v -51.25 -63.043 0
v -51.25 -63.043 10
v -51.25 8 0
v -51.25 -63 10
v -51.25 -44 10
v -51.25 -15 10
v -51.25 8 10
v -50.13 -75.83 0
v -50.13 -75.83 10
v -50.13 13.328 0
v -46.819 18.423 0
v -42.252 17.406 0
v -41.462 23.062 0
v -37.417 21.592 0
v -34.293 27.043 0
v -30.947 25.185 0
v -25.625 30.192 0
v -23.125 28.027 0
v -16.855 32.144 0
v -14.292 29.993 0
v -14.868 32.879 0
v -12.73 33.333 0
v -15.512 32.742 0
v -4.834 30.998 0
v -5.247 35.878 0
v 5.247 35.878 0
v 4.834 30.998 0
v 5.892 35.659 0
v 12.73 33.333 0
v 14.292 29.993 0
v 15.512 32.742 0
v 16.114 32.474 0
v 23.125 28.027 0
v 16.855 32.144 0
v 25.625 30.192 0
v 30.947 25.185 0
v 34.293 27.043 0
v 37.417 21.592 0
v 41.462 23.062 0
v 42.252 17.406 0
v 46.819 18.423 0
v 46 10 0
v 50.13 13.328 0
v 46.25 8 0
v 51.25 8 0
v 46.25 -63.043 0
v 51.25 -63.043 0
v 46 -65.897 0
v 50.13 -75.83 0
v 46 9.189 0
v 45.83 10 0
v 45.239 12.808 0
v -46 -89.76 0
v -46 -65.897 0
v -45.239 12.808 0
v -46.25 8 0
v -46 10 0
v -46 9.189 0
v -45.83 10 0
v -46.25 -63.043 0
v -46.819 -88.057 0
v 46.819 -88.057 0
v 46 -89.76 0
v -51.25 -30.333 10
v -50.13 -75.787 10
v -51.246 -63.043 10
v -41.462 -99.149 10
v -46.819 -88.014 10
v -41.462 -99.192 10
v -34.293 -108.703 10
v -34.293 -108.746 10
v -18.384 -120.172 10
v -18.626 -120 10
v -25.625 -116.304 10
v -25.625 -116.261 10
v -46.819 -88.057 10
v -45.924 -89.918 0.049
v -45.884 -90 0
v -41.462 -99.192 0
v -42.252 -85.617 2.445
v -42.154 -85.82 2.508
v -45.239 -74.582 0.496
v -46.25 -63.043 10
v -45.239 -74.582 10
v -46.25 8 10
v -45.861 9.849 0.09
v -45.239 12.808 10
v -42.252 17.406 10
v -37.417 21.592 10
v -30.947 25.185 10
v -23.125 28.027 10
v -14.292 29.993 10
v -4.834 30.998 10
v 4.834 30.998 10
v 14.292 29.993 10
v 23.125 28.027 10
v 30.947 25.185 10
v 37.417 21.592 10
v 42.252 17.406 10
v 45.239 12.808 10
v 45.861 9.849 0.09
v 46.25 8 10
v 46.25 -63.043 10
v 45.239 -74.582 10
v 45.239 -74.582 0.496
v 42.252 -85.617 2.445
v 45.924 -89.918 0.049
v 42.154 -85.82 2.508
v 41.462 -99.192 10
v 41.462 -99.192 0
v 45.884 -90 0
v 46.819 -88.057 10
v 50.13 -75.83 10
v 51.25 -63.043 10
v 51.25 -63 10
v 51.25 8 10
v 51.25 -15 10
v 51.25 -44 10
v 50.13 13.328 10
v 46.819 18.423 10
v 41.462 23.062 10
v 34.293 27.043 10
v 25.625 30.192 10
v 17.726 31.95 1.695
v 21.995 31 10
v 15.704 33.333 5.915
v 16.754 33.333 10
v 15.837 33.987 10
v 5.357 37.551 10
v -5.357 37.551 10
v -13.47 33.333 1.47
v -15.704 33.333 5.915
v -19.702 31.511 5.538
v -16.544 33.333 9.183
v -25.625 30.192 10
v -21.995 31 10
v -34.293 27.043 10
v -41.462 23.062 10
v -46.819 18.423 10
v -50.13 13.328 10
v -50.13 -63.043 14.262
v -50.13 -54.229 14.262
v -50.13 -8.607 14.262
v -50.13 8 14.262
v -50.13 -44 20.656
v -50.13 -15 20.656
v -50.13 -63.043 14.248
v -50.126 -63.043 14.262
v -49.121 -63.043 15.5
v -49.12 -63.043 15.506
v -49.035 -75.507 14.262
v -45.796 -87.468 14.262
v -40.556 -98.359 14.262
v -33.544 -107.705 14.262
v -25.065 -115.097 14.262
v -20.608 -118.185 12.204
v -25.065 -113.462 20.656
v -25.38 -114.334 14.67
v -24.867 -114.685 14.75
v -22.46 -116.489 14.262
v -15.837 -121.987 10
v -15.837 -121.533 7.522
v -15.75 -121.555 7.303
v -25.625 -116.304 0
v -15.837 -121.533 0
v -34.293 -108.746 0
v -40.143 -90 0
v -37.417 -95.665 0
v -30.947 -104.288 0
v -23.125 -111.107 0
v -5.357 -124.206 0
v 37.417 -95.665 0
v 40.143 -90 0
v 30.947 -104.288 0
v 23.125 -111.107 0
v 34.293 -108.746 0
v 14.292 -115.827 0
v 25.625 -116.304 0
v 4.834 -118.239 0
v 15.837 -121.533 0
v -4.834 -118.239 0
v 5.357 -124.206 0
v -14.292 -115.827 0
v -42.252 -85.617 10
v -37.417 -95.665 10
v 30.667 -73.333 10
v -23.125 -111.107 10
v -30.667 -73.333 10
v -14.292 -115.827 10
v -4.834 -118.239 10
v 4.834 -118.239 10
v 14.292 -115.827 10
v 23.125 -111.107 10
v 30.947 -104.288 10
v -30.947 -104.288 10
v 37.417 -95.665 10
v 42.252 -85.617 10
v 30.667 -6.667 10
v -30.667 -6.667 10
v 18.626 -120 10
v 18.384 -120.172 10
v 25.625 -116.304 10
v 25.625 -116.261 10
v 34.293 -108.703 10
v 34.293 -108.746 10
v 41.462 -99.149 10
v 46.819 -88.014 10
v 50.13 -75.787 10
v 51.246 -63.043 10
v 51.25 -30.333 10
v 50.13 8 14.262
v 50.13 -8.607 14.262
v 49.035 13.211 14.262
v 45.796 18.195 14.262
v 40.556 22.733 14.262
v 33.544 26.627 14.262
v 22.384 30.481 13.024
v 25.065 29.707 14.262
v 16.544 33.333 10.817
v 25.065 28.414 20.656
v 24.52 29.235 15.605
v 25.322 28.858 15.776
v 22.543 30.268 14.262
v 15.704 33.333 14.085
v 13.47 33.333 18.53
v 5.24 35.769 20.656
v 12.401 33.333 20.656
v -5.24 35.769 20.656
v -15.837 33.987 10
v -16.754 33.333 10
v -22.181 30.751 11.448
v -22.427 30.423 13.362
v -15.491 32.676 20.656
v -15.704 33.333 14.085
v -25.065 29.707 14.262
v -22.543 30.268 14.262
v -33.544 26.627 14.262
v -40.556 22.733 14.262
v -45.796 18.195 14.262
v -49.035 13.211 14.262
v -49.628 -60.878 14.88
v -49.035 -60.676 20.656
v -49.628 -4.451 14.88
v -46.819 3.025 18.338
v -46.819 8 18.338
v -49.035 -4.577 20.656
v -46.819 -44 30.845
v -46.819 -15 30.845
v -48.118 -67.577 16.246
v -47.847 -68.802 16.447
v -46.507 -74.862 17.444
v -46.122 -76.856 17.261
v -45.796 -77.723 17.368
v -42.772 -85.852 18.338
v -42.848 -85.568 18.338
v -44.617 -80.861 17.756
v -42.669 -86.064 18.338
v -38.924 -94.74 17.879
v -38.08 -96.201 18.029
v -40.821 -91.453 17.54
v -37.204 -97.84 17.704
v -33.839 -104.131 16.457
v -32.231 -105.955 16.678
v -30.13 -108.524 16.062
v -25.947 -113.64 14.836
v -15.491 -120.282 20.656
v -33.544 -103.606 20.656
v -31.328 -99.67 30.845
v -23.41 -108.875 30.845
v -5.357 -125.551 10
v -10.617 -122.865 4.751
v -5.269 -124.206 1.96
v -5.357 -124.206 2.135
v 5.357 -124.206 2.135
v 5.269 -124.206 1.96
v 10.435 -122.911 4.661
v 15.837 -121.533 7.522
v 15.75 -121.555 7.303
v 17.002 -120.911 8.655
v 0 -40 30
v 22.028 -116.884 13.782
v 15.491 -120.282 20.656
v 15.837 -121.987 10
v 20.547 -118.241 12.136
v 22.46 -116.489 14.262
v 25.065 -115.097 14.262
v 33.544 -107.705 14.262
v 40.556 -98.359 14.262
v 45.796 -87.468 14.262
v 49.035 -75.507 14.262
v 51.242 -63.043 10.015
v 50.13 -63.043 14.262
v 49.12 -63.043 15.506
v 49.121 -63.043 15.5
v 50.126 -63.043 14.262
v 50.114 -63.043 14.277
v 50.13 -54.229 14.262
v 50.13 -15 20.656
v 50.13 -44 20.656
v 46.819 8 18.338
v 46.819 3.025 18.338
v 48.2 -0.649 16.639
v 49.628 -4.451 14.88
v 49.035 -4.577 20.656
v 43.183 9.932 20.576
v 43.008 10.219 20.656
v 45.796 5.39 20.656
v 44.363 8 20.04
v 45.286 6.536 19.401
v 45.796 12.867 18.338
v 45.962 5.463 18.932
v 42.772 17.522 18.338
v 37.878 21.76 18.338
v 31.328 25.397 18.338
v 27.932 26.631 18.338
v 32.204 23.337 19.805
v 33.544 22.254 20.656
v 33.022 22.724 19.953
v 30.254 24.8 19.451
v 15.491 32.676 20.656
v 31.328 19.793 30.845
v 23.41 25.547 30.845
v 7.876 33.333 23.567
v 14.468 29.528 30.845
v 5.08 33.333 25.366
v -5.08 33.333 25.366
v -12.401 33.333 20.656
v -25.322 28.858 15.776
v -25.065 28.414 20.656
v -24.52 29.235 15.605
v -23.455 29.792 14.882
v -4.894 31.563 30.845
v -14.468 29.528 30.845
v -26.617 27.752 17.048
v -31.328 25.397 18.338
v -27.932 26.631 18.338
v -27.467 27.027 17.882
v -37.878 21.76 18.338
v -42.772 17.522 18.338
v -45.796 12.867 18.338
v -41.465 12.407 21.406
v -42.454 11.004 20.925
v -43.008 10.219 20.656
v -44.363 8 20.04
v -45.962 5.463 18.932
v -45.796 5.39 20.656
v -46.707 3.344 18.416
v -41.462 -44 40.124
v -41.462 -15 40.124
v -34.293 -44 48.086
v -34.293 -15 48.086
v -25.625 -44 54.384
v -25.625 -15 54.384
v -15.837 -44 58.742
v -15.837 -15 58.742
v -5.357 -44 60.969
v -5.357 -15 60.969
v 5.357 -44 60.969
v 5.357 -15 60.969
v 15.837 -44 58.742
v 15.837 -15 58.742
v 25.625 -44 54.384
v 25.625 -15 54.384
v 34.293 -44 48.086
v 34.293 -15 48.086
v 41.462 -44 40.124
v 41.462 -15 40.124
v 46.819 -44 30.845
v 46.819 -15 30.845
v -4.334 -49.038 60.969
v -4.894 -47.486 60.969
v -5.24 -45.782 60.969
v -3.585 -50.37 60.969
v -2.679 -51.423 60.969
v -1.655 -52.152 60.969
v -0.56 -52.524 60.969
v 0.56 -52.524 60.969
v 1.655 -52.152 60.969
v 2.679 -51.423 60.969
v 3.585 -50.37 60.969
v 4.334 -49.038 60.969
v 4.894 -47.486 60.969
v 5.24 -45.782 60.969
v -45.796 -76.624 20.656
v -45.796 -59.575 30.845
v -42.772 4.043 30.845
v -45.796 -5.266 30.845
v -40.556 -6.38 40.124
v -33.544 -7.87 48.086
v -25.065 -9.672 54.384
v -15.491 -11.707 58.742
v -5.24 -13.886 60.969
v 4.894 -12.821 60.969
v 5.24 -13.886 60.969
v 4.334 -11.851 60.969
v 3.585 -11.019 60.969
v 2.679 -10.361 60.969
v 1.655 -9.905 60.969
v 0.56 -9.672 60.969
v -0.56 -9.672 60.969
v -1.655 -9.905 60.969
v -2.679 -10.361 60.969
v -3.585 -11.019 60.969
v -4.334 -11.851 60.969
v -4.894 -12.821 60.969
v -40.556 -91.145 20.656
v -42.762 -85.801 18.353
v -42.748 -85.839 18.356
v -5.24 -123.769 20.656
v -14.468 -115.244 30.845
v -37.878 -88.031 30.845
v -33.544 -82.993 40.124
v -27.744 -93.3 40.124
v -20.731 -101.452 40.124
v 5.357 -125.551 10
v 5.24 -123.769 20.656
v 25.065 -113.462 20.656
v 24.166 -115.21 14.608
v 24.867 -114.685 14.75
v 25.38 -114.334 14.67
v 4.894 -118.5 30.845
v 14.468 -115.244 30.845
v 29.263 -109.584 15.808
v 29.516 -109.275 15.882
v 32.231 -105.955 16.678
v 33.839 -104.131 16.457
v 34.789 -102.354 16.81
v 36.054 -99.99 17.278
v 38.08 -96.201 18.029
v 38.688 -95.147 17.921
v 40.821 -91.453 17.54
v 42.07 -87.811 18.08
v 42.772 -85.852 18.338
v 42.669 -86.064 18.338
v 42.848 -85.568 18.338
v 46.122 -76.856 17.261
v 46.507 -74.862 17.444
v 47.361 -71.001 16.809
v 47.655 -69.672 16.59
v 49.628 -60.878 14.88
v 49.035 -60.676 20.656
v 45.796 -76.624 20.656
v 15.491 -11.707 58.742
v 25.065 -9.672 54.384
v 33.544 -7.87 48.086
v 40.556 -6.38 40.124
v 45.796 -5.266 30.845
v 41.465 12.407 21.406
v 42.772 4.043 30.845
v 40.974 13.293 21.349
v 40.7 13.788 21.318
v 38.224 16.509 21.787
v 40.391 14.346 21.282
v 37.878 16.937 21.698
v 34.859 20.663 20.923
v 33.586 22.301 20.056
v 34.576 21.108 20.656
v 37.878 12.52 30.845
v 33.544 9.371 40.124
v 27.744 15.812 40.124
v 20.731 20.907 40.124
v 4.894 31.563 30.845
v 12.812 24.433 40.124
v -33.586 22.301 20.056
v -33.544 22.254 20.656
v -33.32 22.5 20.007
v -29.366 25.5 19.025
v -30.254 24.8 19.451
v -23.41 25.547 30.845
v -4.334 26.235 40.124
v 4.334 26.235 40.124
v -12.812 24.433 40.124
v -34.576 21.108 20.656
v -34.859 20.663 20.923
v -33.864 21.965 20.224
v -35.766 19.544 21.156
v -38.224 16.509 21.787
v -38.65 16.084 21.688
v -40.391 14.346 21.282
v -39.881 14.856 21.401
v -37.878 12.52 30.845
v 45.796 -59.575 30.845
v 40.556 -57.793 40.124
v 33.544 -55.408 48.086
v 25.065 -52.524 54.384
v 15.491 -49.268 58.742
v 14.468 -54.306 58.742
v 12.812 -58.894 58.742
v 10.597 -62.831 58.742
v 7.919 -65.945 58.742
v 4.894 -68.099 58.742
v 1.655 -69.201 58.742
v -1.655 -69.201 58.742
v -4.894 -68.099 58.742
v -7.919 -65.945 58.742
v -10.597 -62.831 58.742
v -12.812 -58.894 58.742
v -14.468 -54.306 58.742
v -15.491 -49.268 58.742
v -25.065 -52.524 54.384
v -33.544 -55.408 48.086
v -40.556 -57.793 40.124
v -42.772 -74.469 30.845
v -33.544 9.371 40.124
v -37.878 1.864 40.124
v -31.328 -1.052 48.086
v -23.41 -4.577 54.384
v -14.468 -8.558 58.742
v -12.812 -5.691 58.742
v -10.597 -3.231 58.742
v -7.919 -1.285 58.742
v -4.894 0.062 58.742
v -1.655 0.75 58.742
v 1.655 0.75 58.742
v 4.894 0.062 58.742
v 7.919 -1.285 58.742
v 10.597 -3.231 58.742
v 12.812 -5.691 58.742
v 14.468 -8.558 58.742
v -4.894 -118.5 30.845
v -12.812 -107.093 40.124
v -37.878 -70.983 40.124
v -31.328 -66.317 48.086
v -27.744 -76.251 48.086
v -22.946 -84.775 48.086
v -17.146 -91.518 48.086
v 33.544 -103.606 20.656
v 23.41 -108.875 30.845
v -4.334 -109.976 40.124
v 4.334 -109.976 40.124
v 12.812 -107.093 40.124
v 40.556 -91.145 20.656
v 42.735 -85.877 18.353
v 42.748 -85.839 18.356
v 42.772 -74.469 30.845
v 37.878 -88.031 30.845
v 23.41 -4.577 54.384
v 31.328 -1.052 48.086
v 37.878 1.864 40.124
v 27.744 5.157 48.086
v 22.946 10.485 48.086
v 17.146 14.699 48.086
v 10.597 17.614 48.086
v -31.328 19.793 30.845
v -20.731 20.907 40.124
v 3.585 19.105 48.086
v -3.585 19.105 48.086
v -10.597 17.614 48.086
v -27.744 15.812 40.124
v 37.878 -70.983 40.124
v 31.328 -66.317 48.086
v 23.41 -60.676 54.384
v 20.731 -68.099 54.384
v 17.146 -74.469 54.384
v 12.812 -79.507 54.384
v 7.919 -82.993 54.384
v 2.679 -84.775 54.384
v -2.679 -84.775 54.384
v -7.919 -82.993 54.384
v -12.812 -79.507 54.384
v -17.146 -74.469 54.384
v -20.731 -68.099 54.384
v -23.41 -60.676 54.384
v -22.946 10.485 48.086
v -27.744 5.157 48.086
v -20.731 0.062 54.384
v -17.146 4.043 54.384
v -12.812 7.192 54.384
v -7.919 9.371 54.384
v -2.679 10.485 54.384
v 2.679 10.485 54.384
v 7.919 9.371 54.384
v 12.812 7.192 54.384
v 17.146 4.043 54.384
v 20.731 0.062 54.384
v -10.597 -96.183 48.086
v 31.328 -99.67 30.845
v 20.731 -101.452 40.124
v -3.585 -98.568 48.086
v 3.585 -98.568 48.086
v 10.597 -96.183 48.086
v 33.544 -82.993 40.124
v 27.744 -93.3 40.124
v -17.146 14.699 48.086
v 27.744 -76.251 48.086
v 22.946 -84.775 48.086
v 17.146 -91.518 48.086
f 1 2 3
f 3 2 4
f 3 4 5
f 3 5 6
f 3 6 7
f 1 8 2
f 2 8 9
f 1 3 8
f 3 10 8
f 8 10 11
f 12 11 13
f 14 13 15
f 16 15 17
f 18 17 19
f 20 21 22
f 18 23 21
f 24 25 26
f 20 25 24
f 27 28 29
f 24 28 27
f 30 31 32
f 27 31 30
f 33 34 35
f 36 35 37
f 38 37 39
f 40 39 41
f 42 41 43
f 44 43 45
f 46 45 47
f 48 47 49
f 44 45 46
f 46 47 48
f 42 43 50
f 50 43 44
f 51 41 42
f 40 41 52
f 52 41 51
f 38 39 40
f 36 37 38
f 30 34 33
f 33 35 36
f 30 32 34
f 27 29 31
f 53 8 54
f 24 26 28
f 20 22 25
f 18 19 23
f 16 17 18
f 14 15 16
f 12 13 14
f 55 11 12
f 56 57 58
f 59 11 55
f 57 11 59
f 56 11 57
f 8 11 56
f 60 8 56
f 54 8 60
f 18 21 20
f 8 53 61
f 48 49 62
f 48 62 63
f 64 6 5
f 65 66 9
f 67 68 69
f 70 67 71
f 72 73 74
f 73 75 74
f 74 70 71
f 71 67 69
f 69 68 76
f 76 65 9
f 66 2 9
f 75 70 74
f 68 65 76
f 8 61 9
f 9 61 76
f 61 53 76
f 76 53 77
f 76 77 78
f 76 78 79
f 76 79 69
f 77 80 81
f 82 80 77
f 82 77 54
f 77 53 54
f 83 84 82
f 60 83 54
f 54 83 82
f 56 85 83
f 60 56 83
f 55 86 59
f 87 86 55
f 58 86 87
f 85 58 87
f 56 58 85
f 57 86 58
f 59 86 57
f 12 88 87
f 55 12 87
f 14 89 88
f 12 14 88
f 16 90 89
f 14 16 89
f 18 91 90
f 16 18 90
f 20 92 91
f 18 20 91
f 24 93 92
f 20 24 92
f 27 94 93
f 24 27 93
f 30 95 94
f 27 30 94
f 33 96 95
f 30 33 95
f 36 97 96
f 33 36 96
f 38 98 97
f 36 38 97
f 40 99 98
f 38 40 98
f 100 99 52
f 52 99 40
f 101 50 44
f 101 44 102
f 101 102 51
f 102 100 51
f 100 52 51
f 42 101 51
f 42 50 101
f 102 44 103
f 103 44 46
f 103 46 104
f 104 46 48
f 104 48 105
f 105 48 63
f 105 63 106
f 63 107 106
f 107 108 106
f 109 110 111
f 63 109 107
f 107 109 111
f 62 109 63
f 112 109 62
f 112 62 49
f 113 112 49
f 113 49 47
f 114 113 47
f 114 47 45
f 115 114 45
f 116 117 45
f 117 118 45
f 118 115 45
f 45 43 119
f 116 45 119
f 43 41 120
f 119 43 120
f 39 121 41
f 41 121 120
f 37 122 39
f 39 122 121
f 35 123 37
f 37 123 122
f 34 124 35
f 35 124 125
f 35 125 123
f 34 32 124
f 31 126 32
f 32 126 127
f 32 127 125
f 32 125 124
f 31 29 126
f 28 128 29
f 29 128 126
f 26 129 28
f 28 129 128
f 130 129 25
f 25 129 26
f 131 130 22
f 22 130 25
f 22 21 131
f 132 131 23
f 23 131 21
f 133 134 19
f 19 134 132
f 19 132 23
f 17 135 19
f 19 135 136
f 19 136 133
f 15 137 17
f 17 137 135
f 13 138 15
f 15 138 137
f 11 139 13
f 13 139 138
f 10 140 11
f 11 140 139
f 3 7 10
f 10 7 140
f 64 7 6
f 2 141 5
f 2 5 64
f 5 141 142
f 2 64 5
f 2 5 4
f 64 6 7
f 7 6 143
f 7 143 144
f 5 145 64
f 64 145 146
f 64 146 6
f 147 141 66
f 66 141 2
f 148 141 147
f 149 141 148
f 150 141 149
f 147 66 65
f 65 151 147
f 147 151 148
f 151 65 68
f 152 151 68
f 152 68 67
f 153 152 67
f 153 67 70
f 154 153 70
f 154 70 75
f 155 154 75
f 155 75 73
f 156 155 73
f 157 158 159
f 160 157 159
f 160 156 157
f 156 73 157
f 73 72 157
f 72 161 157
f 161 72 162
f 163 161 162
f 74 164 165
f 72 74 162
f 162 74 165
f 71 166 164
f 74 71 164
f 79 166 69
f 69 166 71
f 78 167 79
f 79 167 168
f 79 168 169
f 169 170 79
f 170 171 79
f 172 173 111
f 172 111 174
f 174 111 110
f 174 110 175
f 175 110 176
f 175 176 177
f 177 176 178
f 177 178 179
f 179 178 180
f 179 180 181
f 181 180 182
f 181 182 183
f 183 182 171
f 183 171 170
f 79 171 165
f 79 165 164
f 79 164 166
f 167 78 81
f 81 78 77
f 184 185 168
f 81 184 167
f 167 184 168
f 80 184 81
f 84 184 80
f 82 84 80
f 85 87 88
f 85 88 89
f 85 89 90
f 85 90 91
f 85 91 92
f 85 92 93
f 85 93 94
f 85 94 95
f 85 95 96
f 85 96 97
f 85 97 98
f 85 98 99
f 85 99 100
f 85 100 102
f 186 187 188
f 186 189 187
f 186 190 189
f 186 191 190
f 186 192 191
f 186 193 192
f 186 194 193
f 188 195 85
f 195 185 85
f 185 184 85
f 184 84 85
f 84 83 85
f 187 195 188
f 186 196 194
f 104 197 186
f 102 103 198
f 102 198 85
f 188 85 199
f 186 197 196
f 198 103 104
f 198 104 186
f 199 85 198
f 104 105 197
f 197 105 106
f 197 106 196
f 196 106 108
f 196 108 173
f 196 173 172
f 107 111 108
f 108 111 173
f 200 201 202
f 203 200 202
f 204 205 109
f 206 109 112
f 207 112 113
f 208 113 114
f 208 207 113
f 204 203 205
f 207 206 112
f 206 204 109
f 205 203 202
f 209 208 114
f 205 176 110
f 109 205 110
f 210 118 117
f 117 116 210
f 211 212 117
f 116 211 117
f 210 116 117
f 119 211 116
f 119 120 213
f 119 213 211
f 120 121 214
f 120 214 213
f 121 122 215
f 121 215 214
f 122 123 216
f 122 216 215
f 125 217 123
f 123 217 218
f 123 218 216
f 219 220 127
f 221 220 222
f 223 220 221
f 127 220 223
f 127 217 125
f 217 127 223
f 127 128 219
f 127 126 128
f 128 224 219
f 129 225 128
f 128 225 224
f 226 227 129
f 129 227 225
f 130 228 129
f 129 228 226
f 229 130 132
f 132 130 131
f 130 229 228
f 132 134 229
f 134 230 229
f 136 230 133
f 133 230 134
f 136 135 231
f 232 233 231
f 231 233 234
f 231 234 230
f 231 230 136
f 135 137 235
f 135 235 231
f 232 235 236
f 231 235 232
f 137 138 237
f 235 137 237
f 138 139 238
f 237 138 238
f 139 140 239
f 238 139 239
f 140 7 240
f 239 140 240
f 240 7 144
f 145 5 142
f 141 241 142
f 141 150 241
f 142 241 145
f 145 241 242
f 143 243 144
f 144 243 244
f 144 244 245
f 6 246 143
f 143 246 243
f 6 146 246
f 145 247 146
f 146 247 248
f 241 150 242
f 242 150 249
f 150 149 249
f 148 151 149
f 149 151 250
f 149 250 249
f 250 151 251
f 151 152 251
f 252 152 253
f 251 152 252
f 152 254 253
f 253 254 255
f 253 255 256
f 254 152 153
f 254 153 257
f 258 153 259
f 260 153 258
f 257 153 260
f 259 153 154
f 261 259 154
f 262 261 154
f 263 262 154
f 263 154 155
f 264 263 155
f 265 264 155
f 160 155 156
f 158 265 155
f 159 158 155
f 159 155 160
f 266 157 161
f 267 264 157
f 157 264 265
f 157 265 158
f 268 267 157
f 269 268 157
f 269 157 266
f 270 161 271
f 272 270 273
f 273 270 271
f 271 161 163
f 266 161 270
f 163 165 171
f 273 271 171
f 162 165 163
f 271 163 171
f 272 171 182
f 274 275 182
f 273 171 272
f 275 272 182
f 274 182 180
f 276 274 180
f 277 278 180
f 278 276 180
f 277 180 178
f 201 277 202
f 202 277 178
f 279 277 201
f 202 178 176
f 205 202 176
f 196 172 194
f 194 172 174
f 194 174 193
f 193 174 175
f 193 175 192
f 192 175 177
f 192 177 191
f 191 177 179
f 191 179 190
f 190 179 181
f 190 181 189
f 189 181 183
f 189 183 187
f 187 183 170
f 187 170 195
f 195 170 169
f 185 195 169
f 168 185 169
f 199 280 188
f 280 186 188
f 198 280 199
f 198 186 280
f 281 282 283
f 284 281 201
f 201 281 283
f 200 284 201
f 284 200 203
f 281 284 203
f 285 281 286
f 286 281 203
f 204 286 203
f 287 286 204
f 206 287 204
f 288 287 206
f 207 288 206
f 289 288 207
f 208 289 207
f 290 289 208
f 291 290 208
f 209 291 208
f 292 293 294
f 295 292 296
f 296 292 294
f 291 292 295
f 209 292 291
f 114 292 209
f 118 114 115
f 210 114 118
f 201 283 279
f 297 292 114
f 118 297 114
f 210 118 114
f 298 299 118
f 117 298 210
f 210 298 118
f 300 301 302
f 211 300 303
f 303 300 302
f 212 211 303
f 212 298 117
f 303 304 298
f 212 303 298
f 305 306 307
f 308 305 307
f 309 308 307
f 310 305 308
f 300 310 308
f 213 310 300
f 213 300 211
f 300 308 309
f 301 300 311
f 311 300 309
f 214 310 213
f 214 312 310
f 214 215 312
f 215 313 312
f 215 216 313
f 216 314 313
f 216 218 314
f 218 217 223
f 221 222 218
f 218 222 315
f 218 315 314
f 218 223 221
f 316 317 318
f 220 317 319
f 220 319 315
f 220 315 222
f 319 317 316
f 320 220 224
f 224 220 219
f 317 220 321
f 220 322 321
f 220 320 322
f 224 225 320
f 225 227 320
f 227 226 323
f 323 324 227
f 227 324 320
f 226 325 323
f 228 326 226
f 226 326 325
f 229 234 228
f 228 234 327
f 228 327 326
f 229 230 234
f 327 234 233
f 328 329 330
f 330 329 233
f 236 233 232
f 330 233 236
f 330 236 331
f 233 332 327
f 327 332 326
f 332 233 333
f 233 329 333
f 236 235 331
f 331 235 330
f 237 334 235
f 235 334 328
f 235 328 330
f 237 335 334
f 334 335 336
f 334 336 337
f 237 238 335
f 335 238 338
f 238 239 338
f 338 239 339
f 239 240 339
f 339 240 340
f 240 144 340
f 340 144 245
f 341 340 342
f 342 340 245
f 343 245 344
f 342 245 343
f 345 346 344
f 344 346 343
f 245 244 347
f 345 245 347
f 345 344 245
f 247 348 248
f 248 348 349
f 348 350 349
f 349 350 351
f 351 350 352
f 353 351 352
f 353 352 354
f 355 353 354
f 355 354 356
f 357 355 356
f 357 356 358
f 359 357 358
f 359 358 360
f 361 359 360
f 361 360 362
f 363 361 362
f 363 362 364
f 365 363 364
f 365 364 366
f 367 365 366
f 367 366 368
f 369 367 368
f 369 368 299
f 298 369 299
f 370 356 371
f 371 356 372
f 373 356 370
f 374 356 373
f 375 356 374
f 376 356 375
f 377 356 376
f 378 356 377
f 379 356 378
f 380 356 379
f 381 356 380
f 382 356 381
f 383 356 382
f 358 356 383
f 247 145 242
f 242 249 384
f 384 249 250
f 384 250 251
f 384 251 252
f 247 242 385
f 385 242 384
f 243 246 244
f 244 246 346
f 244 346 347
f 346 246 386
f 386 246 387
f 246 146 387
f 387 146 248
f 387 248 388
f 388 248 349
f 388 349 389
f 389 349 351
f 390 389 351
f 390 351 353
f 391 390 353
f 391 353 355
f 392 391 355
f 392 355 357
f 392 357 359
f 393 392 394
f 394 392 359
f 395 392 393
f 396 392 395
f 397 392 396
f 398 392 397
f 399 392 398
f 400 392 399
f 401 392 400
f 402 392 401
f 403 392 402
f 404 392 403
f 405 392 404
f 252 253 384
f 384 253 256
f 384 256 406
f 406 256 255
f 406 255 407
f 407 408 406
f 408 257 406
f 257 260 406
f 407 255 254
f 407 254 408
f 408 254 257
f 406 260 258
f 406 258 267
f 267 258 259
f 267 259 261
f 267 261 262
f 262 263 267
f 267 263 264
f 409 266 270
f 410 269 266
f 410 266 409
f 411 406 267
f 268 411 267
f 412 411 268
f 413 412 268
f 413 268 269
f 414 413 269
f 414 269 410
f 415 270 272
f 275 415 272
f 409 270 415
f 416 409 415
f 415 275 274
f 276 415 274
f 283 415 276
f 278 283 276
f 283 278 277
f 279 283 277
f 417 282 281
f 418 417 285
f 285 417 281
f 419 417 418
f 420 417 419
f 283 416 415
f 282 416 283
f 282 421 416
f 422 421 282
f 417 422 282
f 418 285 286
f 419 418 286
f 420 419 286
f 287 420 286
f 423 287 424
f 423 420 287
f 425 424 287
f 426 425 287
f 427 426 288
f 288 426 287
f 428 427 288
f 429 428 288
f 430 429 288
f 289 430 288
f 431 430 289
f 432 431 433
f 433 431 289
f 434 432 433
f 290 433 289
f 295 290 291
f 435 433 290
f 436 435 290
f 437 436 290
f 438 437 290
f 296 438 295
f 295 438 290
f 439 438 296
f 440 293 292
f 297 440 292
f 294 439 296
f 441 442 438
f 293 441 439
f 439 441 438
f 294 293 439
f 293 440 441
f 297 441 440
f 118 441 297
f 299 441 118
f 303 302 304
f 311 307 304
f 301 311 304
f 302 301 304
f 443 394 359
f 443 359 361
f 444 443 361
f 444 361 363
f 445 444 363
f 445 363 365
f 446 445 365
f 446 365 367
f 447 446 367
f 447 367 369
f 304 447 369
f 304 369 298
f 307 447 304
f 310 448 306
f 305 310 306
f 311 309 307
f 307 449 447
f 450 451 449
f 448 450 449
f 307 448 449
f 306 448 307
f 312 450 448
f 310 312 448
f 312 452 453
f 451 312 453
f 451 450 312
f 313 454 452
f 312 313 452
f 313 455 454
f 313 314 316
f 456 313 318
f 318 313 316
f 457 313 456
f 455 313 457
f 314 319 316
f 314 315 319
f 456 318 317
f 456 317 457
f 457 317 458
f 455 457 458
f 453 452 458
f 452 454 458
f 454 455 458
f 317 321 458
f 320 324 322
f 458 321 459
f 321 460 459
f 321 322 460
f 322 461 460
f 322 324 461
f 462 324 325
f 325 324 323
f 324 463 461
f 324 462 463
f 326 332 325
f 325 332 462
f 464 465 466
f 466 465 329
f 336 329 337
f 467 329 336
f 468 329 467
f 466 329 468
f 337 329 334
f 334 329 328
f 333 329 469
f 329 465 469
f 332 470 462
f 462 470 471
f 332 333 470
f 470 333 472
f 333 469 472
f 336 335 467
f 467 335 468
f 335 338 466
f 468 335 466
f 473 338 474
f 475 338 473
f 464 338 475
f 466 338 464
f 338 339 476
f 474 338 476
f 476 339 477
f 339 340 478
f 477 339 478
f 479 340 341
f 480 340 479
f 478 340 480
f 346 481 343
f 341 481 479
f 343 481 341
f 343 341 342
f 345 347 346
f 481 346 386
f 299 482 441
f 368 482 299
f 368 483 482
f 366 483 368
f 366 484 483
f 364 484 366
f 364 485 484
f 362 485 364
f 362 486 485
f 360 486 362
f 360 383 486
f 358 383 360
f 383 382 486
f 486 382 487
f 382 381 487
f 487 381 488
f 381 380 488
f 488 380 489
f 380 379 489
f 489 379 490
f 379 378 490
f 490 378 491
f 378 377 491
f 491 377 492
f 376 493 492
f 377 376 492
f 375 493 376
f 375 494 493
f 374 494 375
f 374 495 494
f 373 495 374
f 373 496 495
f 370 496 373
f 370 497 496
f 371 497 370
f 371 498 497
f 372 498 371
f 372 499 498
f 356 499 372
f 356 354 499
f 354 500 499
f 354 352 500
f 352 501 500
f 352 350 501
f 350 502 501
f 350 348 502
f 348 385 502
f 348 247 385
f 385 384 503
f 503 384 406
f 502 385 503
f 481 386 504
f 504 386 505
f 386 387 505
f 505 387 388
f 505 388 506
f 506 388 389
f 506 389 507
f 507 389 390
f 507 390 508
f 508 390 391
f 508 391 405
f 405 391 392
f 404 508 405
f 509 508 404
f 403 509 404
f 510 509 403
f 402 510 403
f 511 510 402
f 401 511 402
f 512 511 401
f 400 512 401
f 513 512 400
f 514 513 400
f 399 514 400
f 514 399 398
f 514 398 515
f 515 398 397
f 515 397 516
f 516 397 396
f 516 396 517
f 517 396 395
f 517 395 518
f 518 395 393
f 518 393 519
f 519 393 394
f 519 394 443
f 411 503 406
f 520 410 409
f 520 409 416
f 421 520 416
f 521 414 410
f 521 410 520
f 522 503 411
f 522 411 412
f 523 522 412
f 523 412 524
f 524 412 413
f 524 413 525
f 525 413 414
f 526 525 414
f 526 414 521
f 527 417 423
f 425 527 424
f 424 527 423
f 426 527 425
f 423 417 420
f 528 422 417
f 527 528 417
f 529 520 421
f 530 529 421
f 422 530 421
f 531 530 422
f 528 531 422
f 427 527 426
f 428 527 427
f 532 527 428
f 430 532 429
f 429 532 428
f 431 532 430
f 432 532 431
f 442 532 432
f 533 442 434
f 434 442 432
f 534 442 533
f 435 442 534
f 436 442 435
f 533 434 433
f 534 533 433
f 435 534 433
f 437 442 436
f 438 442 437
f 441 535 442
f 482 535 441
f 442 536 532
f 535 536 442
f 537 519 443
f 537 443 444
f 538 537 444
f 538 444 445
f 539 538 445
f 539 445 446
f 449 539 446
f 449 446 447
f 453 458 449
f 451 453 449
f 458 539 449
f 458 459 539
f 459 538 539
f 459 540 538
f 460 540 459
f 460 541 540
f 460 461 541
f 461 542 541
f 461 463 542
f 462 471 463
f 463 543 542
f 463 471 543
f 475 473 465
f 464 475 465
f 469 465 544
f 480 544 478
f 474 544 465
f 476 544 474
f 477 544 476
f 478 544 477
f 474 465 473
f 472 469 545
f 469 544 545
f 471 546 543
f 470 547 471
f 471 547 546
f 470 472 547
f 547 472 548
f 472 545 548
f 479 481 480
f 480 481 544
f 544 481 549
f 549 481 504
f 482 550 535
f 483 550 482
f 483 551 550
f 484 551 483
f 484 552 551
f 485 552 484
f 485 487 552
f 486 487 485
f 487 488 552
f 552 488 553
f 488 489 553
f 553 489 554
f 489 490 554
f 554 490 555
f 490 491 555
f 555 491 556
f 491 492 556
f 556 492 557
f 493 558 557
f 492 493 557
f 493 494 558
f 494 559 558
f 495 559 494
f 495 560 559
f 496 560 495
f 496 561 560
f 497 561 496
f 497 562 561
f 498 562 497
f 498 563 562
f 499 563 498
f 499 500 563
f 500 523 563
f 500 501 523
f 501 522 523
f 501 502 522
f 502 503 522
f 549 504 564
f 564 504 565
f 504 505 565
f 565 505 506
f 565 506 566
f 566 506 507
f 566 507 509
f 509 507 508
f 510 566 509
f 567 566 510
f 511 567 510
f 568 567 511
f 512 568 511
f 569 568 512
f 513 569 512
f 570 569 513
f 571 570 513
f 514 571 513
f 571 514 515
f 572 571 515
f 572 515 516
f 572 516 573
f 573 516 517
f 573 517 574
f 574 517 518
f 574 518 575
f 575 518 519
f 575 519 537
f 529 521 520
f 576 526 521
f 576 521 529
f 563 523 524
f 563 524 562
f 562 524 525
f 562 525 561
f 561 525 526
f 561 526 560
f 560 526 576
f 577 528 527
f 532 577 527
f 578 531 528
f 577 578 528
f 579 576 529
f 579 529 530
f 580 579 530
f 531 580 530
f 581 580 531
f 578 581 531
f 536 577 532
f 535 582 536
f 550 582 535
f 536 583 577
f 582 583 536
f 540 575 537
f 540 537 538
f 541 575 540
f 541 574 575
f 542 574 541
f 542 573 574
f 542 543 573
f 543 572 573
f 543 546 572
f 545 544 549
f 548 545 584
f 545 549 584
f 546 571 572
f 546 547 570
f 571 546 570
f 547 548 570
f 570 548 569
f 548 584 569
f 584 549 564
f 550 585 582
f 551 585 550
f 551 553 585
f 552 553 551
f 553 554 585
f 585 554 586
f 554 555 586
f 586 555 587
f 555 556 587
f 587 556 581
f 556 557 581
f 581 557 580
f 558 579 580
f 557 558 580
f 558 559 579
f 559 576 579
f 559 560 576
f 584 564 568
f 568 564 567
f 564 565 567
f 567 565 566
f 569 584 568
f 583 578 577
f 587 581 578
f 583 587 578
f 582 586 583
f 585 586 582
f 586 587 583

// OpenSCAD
// file: CoreBasePlate.scad
module CoreBasePlate(basewidth = 92.5, centralBoxLength=71.043, baseThickness=10, headScaleFactor=0.5, tailScaleFactor=1.2)
{
	translate([-basewidth/2, -centralBoxLength+8,0])
	{
		// Create Central Cube
		cube([basewidth, centralBoxLength, baseThickness]);

		// Create Head Cylinder
		translate([basewidth/2,centralBoxLength,0])
			scale([1,headScaleFactor,1])
				cylinder(baseThickness, d=basewidth);

		// Create Tail Cylinder
		translate([basewidth/2,0,0])
			scale([1,tailScaleFactor,1])
				cylinder(baseThickness, d=basewidth);
	}
}

//CoreBasePlate();
// main file
/**
 * Module Name: Robot Shell
 * 
 * Description:
 *     Robot Shell
 *
 */
include <CoreBasePlate.scad>;

module RobotShell(basewidth=92.5)
{
	GOLDEN_RATIO = 1.618;
	centralBoxLength=71.043;
	baseThickness=10;
	headScaleFactor=0.5;
	tailScaleFactor=1.2;
	heightScaleFactor = .4; //1/GOLDEN_RATION
	shellWidth = basewidth + 10;

	topShellScaleFactor = 1;

	difference()
	{
	union()
	{
		// Top-Back Roundess
		translate([0,-44,baseThickness])
			scale([1, 1.6,topShellScaleFactor])
				sphere(d=shellWidth);

		// Top-Front Roundess
		translate([0,-15,baseThickness])
			scale([1, 1,topShellScaleFactor])
				sphere(d=shellWidth);

		// Connection of front to back
		translate([0,-15, baseThickness])
			scale([1, 1,topShellScaleFactor])
				rotate([90,0,0])
					cylinder(d=shellWidth, 44-15);

		// Head Roundess
		translate([0,8,baseThickness])
			scale([1, headScaleFactor,heightScaleFactor])
				sphere(d=shellWidth);

		// Tail Roundness
		translate([0,-63,baseThickness])
			scale([1, tailScaleFactor,heightScaleFactor])
				sphere(d=shellWidth);

		// Connection of front to back
		translate([0,8, baseThickness])
			scale([1, 1,heightScaleFactor])
				rotate([90,0,0])
					cylinder(d=shellWidth, centralBoxLength);
	
		// Connection to base
		CoreBasePlate(basewidth=shellWidth, centralBoxLength=centralBoxLength, 
					  baseThickness=baseThickness, headScaleFactor=headScaleFactor, 
					  tailScaleFactor=tailScaleFactor);
	}
		CoreBasePlate(basewidth=basewidth, centralBoxLength=centralBoxLength, 
					  baseThickness=baseThickness, headScaleFactor=headScaleFactor, 
					  tailScaleFactor=tailScaleFactor);
		translate([-100,-150,-200])
			cube([200,200,200]);
	
		translate([0,-40,0])
			#InnerCavity();
	}

}
RobotShell();

module InnerCavity()
{
	radiusX = 46;
	yPosition = 50;
	height = 30;

	polyhedron(
  points=[ [ radiusX,yPosition,0], [ radiusX,-yPosition,0],
			  [-radiusX,-yPosition,0],[-radiusX,yPosition,0], // the four points at base
           [0,0,height]  ],                                 // the apex point 
  faces=[ [0,1,4],[1,2,4],[2,3,4],[3,0,4],              // each triangle side
              [1,0,3],[2,1,3] ]                         // two triangles for square base
 );

}
